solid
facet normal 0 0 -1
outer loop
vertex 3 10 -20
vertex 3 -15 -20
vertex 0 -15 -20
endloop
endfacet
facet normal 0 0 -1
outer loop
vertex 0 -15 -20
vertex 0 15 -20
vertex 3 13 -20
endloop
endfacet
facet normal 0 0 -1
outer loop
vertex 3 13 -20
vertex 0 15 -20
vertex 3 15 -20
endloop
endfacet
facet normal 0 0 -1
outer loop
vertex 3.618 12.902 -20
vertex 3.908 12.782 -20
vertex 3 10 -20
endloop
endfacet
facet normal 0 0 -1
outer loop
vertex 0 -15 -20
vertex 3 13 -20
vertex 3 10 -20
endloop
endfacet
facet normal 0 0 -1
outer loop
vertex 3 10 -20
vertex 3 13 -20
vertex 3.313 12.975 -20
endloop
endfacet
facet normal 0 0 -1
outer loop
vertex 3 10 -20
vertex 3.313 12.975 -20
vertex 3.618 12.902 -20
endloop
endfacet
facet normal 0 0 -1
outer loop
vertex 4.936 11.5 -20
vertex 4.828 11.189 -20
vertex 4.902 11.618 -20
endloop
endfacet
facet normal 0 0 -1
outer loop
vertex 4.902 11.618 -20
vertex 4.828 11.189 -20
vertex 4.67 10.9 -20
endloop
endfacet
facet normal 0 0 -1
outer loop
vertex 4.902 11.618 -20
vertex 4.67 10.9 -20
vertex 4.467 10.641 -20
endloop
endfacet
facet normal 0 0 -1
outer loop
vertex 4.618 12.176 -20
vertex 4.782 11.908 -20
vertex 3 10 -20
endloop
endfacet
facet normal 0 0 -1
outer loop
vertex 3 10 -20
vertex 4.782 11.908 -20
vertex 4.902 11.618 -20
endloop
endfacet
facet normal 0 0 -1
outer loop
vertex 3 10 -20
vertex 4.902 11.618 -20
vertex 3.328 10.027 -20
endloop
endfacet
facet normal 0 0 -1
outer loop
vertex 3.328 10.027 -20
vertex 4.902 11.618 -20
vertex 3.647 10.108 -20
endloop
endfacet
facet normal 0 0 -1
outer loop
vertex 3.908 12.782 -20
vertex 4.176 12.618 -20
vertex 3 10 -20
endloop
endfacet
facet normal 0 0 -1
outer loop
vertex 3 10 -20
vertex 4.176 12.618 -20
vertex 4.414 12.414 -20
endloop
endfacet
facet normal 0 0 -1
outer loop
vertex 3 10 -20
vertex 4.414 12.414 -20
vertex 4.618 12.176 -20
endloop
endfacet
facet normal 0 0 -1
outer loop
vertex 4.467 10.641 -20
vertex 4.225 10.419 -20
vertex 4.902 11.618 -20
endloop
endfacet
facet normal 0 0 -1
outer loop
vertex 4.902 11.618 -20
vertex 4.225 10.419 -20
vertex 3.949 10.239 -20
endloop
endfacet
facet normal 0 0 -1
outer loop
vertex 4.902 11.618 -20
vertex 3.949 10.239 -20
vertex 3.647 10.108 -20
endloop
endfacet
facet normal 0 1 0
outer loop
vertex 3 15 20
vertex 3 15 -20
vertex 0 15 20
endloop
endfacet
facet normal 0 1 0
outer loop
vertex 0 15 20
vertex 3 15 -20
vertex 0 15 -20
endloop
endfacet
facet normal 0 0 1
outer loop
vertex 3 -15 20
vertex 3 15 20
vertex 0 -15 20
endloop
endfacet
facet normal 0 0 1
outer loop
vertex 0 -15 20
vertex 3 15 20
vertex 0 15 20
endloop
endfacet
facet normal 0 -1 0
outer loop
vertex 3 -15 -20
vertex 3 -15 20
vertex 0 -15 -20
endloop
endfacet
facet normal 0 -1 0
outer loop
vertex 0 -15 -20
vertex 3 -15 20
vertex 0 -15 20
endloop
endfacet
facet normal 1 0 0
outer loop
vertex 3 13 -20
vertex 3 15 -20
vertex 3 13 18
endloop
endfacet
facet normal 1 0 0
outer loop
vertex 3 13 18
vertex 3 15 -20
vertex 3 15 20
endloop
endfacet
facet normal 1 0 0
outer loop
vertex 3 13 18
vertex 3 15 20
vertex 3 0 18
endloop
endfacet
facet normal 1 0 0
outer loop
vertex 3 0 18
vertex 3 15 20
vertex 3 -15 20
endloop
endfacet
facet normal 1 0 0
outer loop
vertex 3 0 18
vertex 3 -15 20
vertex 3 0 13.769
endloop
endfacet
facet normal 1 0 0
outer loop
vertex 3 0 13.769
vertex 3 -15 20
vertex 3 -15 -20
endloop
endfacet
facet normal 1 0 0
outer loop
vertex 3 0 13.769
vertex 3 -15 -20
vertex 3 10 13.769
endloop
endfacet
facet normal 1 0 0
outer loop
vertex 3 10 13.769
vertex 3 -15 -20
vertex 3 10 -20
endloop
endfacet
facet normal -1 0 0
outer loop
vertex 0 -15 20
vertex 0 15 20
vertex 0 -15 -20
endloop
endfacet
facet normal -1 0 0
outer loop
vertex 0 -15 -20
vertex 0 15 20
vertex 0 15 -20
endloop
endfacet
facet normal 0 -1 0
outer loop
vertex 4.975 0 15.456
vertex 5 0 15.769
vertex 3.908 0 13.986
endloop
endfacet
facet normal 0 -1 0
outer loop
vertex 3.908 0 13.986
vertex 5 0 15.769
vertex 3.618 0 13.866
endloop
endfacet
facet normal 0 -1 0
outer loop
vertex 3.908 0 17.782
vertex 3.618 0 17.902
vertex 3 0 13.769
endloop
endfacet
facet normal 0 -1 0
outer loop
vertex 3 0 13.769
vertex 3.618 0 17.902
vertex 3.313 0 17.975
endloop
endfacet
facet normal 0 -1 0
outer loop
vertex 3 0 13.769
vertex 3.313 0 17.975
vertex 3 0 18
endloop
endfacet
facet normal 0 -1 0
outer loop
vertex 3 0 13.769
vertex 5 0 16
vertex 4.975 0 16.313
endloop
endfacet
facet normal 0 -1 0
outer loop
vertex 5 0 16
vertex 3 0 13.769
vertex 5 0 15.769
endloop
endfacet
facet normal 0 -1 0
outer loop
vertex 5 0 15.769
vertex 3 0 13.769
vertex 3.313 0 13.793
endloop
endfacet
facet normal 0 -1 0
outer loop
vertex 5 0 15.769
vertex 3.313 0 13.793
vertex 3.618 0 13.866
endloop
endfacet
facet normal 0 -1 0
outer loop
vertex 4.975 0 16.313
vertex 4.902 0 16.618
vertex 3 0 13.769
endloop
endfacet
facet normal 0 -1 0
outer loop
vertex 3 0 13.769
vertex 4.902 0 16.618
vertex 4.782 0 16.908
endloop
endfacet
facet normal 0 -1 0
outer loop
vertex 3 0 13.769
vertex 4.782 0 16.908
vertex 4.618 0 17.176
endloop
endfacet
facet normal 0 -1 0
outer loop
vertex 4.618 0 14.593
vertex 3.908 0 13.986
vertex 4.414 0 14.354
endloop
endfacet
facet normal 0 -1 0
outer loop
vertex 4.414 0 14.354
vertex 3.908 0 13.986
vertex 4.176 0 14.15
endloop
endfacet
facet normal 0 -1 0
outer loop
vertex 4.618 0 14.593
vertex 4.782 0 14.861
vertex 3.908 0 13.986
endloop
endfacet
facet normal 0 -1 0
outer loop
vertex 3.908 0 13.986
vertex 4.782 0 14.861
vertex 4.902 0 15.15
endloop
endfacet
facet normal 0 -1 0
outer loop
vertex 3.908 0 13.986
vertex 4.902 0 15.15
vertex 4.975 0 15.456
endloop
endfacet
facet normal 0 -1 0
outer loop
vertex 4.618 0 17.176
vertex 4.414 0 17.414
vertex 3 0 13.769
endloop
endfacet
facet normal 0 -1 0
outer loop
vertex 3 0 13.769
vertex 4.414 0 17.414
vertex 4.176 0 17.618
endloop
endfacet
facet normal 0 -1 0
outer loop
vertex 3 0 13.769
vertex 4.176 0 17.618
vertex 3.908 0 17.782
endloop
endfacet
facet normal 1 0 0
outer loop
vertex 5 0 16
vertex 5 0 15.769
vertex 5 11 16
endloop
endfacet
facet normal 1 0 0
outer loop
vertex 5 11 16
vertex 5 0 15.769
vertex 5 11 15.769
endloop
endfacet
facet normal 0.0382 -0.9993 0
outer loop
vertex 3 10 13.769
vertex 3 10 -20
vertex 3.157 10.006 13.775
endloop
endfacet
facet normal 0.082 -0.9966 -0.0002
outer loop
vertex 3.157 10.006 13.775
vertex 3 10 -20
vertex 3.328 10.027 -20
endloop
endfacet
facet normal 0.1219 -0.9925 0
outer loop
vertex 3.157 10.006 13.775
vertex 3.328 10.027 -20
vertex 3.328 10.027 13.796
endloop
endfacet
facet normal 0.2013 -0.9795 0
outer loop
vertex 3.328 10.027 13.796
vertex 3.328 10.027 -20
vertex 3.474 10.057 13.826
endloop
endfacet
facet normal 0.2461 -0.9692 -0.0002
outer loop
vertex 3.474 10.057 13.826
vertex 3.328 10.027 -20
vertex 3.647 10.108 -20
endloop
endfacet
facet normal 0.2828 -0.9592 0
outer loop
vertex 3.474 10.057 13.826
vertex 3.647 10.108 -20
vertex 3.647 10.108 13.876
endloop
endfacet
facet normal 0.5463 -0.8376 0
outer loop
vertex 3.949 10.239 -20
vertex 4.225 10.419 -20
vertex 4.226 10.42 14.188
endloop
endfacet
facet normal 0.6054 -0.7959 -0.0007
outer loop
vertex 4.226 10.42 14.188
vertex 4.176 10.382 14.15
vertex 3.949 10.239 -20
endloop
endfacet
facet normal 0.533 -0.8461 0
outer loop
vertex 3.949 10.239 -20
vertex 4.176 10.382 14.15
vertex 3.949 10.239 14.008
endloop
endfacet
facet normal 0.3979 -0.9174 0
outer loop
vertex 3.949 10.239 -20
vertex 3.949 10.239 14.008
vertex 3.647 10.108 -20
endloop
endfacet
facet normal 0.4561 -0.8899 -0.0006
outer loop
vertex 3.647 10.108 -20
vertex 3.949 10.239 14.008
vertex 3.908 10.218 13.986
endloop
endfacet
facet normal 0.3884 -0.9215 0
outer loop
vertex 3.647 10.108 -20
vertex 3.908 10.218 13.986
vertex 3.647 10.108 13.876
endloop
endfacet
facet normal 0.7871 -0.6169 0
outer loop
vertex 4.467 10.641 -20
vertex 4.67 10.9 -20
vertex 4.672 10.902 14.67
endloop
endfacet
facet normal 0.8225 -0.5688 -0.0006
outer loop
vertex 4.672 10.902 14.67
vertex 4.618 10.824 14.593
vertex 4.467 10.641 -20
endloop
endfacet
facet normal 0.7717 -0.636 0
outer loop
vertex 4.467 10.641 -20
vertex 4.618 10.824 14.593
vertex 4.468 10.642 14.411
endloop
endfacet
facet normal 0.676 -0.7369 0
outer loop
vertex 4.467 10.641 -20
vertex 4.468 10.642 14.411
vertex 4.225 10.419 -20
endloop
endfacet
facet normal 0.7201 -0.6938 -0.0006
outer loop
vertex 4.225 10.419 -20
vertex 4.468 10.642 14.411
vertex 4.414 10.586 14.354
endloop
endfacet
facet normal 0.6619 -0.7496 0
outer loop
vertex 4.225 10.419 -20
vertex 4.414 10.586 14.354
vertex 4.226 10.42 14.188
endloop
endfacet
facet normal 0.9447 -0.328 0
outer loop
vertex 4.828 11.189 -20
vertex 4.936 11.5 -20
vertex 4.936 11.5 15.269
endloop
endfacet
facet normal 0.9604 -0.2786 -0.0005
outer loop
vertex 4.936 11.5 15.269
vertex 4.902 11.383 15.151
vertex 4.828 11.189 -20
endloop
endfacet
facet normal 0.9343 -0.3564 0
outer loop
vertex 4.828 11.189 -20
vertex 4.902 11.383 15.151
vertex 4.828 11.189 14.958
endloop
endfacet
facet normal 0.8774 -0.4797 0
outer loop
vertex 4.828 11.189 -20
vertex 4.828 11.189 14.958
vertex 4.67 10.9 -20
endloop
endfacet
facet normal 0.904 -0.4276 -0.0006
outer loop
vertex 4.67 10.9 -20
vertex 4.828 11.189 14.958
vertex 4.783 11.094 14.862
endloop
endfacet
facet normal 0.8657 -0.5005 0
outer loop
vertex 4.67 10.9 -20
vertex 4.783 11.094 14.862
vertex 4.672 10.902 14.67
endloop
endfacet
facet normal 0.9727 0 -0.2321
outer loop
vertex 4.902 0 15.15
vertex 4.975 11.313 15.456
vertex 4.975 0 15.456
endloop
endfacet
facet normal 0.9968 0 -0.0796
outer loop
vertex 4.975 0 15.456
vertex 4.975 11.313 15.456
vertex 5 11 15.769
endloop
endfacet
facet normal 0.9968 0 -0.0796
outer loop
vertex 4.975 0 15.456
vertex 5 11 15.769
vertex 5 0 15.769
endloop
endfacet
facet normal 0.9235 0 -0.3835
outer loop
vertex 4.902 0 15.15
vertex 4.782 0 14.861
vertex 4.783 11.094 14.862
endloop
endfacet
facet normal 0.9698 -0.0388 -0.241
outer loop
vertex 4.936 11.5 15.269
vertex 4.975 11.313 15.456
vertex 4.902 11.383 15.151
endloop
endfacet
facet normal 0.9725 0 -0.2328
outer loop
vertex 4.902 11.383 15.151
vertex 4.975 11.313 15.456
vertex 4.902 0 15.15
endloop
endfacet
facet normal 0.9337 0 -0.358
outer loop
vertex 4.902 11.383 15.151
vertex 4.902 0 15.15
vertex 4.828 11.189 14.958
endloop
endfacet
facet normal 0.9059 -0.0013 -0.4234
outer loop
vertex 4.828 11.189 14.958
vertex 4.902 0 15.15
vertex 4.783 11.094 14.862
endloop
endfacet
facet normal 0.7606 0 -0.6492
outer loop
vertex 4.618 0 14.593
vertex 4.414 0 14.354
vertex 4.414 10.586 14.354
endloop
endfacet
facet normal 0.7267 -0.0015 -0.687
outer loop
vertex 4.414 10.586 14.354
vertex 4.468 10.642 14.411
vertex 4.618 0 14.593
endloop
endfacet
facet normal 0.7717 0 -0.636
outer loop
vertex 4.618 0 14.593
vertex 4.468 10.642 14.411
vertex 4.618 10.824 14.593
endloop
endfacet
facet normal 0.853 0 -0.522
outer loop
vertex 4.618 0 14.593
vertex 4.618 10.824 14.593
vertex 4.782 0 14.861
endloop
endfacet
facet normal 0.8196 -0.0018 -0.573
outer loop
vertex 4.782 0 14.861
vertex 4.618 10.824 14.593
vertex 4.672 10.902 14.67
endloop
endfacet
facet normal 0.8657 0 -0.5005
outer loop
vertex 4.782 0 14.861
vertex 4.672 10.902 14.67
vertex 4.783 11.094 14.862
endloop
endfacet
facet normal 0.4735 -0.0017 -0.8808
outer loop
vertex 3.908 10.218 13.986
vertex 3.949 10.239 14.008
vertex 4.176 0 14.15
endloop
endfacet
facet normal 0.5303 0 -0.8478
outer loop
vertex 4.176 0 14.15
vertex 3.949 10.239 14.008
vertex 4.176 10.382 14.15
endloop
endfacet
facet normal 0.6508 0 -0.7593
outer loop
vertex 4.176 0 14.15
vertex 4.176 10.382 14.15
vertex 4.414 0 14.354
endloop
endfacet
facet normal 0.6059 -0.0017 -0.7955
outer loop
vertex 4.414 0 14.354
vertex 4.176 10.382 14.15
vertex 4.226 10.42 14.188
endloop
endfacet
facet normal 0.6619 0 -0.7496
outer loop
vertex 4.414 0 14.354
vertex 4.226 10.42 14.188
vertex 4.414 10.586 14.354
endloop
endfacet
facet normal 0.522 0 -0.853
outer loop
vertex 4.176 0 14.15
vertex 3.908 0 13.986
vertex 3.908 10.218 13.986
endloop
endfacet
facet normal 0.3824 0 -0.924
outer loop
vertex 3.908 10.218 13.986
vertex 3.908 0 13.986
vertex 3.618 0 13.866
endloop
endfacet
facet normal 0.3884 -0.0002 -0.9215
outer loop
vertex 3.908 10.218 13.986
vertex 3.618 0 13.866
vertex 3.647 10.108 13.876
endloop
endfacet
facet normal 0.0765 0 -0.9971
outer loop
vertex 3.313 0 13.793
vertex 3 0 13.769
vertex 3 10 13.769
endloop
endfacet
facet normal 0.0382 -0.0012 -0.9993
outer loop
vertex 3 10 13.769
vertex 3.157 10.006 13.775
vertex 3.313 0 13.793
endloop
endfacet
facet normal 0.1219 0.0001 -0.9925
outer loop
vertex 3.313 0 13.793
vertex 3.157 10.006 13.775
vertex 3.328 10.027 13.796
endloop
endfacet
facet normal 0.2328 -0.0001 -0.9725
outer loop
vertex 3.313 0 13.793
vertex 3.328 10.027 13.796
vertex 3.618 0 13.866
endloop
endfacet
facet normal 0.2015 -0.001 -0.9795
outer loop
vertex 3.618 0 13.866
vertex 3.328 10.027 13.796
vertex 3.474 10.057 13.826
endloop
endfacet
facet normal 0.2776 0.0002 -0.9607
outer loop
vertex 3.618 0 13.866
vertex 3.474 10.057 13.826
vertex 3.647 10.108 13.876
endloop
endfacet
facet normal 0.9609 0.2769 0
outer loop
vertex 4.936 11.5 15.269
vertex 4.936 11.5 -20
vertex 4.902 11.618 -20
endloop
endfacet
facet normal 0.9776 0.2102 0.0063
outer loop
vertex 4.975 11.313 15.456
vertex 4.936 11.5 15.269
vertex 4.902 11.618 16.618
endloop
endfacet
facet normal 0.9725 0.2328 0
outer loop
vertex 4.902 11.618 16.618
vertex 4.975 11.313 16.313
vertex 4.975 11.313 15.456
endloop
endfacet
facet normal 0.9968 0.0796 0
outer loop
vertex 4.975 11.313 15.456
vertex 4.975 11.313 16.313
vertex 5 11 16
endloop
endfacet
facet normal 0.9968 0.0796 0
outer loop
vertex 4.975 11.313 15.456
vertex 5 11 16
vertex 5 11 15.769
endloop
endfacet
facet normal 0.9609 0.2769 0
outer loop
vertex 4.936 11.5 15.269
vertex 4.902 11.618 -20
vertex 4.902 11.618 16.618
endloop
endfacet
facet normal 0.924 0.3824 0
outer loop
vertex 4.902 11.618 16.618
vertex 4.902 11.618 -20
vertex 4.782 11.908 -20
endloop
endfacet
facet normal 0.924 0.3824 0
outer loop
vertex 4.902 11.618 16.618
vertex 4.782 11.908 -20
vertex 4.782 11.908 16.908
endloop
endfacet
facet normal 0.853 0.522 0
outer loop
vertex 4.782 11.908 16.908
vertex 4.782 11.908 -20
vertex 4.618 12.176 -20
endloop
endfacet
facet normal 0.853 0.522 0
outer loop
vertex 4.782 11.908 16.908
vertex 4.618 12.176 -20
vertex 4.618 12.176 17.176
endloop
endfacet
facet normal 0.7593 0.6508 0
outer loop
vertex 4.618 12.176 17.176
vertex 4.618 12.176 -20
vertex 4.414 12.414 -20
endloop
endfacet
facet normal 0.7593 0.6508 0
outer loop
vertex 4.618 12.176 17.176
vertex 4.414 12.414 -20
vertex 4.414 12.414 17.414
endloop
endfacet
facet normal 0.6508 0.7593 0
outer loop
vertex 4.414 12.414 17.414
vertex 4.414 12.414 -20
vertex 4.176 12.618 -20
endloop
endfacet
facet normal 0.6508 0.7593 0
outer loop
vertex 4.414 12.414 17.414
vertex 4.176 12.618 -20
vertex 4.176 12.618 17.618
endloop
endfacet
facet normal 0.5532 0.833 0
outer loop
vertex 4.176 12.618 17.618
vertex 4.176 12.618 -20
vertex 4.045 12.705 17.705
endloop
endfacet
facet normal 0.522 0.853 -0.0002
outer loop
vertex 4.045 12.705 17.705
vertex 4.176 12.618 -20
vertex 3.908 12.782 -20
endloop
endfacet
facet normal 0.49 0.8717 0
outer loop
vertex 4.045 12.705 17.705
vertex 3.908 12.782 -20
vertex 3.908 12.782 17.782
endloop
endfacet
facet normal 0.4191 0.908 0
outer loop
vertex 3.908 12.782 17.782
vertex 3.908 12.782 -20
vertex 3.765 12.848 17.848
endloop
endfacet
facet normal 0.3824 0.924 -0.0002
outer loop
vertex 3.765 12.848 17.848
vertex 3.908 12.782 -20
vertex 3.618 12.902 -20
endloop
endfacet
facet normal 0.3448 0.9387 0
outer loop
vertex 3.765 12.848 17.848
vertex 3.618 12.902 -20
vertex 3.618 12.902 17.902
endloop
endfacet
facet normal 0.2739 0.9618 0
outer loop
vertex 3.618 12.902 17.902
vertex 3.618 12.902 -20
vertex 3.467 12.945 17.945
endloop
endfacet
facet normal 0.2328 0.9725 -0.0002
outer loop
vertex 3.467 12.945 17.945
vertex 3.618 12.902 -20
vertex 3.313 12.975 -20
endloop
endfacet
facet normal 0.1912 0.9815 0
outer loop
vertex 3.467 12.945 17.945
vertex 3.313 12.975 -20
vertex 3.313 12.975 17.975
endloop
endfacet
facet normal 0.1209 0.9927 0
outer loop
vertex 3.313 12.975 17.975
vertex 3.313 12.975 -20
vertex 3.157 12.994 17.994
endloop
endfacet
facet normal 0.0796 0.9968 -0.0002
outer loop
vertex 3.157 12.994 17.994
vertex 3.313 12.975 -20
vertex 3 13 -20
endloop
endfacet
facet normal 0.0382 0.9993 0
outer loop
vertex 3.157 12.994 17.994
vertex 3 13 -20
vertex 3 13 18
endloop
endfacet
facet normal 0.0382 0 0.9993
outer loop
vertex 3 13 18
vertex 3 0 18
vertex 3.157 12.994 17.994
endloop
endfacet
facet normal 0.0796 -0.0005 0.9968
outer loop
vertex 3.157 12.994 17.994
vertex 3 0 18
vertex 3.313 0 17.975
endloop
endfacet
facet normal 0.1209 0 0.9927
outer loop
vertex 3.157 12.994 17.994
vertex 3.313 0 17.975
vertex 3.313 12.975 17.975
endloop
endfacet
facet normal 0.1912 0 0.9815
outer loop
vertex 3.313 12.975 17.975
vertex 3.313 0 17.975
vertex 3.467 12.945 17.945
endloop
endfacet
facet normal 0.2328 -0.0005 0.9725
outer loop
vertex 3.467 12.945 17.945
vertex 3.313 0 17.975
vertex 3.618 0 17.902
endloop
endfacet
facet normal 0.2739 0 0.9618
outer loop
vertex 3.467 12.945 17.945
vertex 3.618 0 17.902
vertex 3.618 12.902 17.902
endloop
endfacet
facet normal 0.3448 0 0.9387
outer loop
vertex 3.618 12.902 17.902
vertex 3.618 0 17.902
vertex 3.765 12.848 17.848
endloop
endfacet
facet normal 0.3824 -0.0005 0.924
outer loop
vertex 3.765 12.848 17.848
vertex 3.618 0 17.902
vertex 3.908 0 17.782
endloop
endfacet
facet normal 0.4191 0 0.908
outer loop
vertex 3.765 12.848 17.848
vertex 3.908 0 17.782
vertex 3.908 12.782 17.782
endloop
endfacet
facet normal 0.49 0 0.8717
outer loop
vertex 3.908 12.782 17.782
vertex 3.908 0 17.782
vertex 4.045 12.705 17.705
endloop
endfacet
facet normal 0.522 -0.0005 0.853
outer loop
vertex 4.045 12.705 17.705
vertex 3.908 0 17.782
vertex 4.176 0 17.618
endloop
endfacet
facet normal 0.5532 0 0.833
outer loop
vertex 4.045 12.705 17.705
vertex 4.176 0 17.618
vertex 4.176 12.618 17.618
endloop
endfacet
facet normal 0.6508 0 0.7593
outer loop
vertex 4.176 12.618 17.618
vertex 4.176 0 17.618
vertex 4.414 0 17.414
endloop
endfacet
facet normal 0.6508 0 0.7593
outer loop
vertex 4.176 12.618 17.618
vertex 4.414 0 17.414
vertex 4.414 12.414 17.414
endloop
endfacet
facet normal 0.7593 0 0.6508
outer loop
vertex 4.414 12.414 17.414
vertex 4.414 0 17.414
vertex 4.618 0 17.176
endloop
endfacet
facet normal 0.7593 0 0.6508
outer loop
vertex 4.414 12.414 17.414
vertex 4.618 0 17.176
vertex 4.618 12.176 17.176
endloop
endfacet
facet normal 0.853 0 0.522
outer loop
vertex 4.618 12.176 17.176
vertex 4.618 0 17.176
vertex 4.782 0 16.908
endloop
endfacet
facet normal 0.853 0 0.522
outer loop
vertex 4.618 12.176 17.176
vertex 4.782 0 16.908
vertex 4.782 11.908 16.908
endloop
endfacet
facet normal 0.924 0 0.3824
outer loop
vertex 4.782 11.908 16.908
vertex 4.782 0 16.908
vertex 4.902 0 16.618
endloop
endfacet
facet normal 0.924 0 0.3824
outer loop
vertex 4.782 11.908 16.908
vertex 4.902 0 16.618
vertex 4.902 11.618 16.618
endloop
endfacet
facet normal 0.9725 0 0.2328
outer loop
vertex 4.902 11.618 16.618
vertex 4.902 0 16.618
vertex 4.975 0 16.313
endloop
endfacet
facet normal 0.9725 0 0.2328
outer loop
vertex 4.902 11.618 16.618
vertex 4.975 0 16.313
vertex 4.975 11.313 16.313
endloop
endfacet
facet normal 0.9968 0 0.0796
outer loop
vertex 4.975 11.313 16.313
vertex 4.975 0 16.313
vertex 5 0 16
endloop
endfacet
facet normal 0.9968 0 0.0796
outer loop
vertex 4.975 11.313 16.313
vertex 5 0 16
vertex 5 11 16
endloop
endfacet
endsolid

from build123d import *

# Parameters (mm, degrees)
SKETCH1_W           = 40
SKETCH1_H           = 30
BOSS_EXTRUDE1_DEPTH = 3
BOSS_EXTRUDE2_DEPTH = 2
FILLET1_R           = 2


with BuildPart() as part:
    # Sketch1 → Boss-Extrude1 (new body)
    with BuildSketch(Plane(origin=(0, 0, 0), x_dir=(0, 0, -1), z_dir=(1, 0, 0))):
        Rectangle(SKETCH1_W, SKETCH1_H)
    extrude(amount=BOSS_EXTRUDE1_DEPTH)

    # Sketch2 → Boss-Extrude2 (add)
    with BuildSketch(Plane(origin=(3, 0, 0), x_dir=(0, 0, -1), z_dir=(1, 0, 0))):
        Polygon((20, 10), (20, 13), (-13.768503326, 13), (-18, 13), (-18, 10), (-18, 0), (-13.768503326, 0), (-13.768503326, 10), align=None)
    extrude(amount=BOSS_EXTRUDE2_DEPTH)

    # Fillet1
    # the kernel refuses this fillet: 2 mm, written as the material it takes off along each edge
    with BuildSketch(Plane(origin=(5, -5, 18), x_dir=(-1, 0, 0), z_dir=(0, 1, 0))) as fillet1_piece_1:
        with BuildLine():
            CenterArc((FILLET1_R, -FILLET1_R), FILLET1_R, 90, 90)
            Line((0, -FILLET1_R), (0, 0))
            Line((0, 0), (FILLET1_R, 0))
        make_face()
    extrude(amount=23, mode=Mode.SUBTRACT)
    with BuildSketch(Plane(origin=(5, -5, 13.768503326), x_dir=(-1, 0, 0), z_dir=(0, 1, 0))) as fillet1_piece_2:
        with BuildLine():
            CenterArc((FILLET1_R, FILLET1_R), FILLET1_R, 180, 90)
            Line((0, FILLET1_R), (0, 0))
            Line((0, 0), (FILLET1_R, 0))
        make_face()
    extrude(amount=15, mode=Mode.SUBTRACT)
    with BuildSketch(Plane(origin=(5, 10, 13.768503326), x_dir=(-1, 0, 0), z_dir=(0, 0, -1))) as fillet1_piece_3:
        with BuildLine():
            CenterArc((FILLET1_R, FILLET1_R), FILLET1_R, 180, 90)
            Line((0, FILLET1_R), (0, 0))
            Line((0, 0), (FILLET1_R, 0))
        make_face()
    extrude(amount=38.768503326, mode=Mode.SUBTRACT)
    with BuildSketch(Plane(origin=(5, 13, 23), x_dir=(-1, 0, 0), z_dir=(0, 0, -1))) as fillet1_piece_4:
        with BuildLine():
            CenterArc((FILLET1_R, -FILLET1_R), FILLET1_R, 90, 90)
            Line((0, -FILLET1_R), (0, 0))
            Line((0, 0), (FILLET1_R, 0))
        make_face()
    extrude(amount=48, mode=Mode.SUBTRACT)
    with BuildSketch(Plane(origin=(5, 10, 18.768503326), x_dir=(-1, 0, 0), z_dir=(0, 0, -1))) as fillet1_piece_5a_section:
        with BuildLine():
            CenterArc((FILLET1_R, FILLET1_R), FILLET1_R, 180, 90)
            Line((0, FILLET1_R), (0, 0))
            Line((0, 0), (FILLET1_R, 0))
        make_face()
    fillet1_piece_5a = extrude(amount=43.768503326, mode=Mode.PRIVATE)
    fillet1_piece_5a = split(fillet1_piece_5a, bisect_by=Plane(origin=(4.547209771, 10.452790229, 13.768503326), z_dir=(0, 0, 1)), keep=Keep.TOP, mode=Mode.PRIVATE)
    with BuildSketch(Plane(origin=(5, -5, 13.768503326), x_dir=(-1, 0, 0), z_dir=(0, 1, 0))) as fillet1_piece_5b_section:
        with BuildLine():
            CenterArc((FILLET1_R, FILLET1_R), FILLET1_R, 180, 90)
            Line((0, FILLET1_R), (0, 0))
            Line((0, 0), (FILLET1_R, 0))
        make_face()
    fillet1_piece_5b = extrude(amount=20, mode=Mode.PRIVATE)
    fillet1_piece_5b = split(fillet1_piece_5b, bisect_by=Plane(origin=(4.547209771, 10, 14.221293555), z_dir=(0, 1, 0)), keep=Keep.TOP, mode=Mode.PRIVATE)
    fillet1_piece_5 = fillet1_piece_5a & fillet1_piece_5b
    add(fillet1_piece_5, mode=Mode.SUBTRACT)


solid = part.part
